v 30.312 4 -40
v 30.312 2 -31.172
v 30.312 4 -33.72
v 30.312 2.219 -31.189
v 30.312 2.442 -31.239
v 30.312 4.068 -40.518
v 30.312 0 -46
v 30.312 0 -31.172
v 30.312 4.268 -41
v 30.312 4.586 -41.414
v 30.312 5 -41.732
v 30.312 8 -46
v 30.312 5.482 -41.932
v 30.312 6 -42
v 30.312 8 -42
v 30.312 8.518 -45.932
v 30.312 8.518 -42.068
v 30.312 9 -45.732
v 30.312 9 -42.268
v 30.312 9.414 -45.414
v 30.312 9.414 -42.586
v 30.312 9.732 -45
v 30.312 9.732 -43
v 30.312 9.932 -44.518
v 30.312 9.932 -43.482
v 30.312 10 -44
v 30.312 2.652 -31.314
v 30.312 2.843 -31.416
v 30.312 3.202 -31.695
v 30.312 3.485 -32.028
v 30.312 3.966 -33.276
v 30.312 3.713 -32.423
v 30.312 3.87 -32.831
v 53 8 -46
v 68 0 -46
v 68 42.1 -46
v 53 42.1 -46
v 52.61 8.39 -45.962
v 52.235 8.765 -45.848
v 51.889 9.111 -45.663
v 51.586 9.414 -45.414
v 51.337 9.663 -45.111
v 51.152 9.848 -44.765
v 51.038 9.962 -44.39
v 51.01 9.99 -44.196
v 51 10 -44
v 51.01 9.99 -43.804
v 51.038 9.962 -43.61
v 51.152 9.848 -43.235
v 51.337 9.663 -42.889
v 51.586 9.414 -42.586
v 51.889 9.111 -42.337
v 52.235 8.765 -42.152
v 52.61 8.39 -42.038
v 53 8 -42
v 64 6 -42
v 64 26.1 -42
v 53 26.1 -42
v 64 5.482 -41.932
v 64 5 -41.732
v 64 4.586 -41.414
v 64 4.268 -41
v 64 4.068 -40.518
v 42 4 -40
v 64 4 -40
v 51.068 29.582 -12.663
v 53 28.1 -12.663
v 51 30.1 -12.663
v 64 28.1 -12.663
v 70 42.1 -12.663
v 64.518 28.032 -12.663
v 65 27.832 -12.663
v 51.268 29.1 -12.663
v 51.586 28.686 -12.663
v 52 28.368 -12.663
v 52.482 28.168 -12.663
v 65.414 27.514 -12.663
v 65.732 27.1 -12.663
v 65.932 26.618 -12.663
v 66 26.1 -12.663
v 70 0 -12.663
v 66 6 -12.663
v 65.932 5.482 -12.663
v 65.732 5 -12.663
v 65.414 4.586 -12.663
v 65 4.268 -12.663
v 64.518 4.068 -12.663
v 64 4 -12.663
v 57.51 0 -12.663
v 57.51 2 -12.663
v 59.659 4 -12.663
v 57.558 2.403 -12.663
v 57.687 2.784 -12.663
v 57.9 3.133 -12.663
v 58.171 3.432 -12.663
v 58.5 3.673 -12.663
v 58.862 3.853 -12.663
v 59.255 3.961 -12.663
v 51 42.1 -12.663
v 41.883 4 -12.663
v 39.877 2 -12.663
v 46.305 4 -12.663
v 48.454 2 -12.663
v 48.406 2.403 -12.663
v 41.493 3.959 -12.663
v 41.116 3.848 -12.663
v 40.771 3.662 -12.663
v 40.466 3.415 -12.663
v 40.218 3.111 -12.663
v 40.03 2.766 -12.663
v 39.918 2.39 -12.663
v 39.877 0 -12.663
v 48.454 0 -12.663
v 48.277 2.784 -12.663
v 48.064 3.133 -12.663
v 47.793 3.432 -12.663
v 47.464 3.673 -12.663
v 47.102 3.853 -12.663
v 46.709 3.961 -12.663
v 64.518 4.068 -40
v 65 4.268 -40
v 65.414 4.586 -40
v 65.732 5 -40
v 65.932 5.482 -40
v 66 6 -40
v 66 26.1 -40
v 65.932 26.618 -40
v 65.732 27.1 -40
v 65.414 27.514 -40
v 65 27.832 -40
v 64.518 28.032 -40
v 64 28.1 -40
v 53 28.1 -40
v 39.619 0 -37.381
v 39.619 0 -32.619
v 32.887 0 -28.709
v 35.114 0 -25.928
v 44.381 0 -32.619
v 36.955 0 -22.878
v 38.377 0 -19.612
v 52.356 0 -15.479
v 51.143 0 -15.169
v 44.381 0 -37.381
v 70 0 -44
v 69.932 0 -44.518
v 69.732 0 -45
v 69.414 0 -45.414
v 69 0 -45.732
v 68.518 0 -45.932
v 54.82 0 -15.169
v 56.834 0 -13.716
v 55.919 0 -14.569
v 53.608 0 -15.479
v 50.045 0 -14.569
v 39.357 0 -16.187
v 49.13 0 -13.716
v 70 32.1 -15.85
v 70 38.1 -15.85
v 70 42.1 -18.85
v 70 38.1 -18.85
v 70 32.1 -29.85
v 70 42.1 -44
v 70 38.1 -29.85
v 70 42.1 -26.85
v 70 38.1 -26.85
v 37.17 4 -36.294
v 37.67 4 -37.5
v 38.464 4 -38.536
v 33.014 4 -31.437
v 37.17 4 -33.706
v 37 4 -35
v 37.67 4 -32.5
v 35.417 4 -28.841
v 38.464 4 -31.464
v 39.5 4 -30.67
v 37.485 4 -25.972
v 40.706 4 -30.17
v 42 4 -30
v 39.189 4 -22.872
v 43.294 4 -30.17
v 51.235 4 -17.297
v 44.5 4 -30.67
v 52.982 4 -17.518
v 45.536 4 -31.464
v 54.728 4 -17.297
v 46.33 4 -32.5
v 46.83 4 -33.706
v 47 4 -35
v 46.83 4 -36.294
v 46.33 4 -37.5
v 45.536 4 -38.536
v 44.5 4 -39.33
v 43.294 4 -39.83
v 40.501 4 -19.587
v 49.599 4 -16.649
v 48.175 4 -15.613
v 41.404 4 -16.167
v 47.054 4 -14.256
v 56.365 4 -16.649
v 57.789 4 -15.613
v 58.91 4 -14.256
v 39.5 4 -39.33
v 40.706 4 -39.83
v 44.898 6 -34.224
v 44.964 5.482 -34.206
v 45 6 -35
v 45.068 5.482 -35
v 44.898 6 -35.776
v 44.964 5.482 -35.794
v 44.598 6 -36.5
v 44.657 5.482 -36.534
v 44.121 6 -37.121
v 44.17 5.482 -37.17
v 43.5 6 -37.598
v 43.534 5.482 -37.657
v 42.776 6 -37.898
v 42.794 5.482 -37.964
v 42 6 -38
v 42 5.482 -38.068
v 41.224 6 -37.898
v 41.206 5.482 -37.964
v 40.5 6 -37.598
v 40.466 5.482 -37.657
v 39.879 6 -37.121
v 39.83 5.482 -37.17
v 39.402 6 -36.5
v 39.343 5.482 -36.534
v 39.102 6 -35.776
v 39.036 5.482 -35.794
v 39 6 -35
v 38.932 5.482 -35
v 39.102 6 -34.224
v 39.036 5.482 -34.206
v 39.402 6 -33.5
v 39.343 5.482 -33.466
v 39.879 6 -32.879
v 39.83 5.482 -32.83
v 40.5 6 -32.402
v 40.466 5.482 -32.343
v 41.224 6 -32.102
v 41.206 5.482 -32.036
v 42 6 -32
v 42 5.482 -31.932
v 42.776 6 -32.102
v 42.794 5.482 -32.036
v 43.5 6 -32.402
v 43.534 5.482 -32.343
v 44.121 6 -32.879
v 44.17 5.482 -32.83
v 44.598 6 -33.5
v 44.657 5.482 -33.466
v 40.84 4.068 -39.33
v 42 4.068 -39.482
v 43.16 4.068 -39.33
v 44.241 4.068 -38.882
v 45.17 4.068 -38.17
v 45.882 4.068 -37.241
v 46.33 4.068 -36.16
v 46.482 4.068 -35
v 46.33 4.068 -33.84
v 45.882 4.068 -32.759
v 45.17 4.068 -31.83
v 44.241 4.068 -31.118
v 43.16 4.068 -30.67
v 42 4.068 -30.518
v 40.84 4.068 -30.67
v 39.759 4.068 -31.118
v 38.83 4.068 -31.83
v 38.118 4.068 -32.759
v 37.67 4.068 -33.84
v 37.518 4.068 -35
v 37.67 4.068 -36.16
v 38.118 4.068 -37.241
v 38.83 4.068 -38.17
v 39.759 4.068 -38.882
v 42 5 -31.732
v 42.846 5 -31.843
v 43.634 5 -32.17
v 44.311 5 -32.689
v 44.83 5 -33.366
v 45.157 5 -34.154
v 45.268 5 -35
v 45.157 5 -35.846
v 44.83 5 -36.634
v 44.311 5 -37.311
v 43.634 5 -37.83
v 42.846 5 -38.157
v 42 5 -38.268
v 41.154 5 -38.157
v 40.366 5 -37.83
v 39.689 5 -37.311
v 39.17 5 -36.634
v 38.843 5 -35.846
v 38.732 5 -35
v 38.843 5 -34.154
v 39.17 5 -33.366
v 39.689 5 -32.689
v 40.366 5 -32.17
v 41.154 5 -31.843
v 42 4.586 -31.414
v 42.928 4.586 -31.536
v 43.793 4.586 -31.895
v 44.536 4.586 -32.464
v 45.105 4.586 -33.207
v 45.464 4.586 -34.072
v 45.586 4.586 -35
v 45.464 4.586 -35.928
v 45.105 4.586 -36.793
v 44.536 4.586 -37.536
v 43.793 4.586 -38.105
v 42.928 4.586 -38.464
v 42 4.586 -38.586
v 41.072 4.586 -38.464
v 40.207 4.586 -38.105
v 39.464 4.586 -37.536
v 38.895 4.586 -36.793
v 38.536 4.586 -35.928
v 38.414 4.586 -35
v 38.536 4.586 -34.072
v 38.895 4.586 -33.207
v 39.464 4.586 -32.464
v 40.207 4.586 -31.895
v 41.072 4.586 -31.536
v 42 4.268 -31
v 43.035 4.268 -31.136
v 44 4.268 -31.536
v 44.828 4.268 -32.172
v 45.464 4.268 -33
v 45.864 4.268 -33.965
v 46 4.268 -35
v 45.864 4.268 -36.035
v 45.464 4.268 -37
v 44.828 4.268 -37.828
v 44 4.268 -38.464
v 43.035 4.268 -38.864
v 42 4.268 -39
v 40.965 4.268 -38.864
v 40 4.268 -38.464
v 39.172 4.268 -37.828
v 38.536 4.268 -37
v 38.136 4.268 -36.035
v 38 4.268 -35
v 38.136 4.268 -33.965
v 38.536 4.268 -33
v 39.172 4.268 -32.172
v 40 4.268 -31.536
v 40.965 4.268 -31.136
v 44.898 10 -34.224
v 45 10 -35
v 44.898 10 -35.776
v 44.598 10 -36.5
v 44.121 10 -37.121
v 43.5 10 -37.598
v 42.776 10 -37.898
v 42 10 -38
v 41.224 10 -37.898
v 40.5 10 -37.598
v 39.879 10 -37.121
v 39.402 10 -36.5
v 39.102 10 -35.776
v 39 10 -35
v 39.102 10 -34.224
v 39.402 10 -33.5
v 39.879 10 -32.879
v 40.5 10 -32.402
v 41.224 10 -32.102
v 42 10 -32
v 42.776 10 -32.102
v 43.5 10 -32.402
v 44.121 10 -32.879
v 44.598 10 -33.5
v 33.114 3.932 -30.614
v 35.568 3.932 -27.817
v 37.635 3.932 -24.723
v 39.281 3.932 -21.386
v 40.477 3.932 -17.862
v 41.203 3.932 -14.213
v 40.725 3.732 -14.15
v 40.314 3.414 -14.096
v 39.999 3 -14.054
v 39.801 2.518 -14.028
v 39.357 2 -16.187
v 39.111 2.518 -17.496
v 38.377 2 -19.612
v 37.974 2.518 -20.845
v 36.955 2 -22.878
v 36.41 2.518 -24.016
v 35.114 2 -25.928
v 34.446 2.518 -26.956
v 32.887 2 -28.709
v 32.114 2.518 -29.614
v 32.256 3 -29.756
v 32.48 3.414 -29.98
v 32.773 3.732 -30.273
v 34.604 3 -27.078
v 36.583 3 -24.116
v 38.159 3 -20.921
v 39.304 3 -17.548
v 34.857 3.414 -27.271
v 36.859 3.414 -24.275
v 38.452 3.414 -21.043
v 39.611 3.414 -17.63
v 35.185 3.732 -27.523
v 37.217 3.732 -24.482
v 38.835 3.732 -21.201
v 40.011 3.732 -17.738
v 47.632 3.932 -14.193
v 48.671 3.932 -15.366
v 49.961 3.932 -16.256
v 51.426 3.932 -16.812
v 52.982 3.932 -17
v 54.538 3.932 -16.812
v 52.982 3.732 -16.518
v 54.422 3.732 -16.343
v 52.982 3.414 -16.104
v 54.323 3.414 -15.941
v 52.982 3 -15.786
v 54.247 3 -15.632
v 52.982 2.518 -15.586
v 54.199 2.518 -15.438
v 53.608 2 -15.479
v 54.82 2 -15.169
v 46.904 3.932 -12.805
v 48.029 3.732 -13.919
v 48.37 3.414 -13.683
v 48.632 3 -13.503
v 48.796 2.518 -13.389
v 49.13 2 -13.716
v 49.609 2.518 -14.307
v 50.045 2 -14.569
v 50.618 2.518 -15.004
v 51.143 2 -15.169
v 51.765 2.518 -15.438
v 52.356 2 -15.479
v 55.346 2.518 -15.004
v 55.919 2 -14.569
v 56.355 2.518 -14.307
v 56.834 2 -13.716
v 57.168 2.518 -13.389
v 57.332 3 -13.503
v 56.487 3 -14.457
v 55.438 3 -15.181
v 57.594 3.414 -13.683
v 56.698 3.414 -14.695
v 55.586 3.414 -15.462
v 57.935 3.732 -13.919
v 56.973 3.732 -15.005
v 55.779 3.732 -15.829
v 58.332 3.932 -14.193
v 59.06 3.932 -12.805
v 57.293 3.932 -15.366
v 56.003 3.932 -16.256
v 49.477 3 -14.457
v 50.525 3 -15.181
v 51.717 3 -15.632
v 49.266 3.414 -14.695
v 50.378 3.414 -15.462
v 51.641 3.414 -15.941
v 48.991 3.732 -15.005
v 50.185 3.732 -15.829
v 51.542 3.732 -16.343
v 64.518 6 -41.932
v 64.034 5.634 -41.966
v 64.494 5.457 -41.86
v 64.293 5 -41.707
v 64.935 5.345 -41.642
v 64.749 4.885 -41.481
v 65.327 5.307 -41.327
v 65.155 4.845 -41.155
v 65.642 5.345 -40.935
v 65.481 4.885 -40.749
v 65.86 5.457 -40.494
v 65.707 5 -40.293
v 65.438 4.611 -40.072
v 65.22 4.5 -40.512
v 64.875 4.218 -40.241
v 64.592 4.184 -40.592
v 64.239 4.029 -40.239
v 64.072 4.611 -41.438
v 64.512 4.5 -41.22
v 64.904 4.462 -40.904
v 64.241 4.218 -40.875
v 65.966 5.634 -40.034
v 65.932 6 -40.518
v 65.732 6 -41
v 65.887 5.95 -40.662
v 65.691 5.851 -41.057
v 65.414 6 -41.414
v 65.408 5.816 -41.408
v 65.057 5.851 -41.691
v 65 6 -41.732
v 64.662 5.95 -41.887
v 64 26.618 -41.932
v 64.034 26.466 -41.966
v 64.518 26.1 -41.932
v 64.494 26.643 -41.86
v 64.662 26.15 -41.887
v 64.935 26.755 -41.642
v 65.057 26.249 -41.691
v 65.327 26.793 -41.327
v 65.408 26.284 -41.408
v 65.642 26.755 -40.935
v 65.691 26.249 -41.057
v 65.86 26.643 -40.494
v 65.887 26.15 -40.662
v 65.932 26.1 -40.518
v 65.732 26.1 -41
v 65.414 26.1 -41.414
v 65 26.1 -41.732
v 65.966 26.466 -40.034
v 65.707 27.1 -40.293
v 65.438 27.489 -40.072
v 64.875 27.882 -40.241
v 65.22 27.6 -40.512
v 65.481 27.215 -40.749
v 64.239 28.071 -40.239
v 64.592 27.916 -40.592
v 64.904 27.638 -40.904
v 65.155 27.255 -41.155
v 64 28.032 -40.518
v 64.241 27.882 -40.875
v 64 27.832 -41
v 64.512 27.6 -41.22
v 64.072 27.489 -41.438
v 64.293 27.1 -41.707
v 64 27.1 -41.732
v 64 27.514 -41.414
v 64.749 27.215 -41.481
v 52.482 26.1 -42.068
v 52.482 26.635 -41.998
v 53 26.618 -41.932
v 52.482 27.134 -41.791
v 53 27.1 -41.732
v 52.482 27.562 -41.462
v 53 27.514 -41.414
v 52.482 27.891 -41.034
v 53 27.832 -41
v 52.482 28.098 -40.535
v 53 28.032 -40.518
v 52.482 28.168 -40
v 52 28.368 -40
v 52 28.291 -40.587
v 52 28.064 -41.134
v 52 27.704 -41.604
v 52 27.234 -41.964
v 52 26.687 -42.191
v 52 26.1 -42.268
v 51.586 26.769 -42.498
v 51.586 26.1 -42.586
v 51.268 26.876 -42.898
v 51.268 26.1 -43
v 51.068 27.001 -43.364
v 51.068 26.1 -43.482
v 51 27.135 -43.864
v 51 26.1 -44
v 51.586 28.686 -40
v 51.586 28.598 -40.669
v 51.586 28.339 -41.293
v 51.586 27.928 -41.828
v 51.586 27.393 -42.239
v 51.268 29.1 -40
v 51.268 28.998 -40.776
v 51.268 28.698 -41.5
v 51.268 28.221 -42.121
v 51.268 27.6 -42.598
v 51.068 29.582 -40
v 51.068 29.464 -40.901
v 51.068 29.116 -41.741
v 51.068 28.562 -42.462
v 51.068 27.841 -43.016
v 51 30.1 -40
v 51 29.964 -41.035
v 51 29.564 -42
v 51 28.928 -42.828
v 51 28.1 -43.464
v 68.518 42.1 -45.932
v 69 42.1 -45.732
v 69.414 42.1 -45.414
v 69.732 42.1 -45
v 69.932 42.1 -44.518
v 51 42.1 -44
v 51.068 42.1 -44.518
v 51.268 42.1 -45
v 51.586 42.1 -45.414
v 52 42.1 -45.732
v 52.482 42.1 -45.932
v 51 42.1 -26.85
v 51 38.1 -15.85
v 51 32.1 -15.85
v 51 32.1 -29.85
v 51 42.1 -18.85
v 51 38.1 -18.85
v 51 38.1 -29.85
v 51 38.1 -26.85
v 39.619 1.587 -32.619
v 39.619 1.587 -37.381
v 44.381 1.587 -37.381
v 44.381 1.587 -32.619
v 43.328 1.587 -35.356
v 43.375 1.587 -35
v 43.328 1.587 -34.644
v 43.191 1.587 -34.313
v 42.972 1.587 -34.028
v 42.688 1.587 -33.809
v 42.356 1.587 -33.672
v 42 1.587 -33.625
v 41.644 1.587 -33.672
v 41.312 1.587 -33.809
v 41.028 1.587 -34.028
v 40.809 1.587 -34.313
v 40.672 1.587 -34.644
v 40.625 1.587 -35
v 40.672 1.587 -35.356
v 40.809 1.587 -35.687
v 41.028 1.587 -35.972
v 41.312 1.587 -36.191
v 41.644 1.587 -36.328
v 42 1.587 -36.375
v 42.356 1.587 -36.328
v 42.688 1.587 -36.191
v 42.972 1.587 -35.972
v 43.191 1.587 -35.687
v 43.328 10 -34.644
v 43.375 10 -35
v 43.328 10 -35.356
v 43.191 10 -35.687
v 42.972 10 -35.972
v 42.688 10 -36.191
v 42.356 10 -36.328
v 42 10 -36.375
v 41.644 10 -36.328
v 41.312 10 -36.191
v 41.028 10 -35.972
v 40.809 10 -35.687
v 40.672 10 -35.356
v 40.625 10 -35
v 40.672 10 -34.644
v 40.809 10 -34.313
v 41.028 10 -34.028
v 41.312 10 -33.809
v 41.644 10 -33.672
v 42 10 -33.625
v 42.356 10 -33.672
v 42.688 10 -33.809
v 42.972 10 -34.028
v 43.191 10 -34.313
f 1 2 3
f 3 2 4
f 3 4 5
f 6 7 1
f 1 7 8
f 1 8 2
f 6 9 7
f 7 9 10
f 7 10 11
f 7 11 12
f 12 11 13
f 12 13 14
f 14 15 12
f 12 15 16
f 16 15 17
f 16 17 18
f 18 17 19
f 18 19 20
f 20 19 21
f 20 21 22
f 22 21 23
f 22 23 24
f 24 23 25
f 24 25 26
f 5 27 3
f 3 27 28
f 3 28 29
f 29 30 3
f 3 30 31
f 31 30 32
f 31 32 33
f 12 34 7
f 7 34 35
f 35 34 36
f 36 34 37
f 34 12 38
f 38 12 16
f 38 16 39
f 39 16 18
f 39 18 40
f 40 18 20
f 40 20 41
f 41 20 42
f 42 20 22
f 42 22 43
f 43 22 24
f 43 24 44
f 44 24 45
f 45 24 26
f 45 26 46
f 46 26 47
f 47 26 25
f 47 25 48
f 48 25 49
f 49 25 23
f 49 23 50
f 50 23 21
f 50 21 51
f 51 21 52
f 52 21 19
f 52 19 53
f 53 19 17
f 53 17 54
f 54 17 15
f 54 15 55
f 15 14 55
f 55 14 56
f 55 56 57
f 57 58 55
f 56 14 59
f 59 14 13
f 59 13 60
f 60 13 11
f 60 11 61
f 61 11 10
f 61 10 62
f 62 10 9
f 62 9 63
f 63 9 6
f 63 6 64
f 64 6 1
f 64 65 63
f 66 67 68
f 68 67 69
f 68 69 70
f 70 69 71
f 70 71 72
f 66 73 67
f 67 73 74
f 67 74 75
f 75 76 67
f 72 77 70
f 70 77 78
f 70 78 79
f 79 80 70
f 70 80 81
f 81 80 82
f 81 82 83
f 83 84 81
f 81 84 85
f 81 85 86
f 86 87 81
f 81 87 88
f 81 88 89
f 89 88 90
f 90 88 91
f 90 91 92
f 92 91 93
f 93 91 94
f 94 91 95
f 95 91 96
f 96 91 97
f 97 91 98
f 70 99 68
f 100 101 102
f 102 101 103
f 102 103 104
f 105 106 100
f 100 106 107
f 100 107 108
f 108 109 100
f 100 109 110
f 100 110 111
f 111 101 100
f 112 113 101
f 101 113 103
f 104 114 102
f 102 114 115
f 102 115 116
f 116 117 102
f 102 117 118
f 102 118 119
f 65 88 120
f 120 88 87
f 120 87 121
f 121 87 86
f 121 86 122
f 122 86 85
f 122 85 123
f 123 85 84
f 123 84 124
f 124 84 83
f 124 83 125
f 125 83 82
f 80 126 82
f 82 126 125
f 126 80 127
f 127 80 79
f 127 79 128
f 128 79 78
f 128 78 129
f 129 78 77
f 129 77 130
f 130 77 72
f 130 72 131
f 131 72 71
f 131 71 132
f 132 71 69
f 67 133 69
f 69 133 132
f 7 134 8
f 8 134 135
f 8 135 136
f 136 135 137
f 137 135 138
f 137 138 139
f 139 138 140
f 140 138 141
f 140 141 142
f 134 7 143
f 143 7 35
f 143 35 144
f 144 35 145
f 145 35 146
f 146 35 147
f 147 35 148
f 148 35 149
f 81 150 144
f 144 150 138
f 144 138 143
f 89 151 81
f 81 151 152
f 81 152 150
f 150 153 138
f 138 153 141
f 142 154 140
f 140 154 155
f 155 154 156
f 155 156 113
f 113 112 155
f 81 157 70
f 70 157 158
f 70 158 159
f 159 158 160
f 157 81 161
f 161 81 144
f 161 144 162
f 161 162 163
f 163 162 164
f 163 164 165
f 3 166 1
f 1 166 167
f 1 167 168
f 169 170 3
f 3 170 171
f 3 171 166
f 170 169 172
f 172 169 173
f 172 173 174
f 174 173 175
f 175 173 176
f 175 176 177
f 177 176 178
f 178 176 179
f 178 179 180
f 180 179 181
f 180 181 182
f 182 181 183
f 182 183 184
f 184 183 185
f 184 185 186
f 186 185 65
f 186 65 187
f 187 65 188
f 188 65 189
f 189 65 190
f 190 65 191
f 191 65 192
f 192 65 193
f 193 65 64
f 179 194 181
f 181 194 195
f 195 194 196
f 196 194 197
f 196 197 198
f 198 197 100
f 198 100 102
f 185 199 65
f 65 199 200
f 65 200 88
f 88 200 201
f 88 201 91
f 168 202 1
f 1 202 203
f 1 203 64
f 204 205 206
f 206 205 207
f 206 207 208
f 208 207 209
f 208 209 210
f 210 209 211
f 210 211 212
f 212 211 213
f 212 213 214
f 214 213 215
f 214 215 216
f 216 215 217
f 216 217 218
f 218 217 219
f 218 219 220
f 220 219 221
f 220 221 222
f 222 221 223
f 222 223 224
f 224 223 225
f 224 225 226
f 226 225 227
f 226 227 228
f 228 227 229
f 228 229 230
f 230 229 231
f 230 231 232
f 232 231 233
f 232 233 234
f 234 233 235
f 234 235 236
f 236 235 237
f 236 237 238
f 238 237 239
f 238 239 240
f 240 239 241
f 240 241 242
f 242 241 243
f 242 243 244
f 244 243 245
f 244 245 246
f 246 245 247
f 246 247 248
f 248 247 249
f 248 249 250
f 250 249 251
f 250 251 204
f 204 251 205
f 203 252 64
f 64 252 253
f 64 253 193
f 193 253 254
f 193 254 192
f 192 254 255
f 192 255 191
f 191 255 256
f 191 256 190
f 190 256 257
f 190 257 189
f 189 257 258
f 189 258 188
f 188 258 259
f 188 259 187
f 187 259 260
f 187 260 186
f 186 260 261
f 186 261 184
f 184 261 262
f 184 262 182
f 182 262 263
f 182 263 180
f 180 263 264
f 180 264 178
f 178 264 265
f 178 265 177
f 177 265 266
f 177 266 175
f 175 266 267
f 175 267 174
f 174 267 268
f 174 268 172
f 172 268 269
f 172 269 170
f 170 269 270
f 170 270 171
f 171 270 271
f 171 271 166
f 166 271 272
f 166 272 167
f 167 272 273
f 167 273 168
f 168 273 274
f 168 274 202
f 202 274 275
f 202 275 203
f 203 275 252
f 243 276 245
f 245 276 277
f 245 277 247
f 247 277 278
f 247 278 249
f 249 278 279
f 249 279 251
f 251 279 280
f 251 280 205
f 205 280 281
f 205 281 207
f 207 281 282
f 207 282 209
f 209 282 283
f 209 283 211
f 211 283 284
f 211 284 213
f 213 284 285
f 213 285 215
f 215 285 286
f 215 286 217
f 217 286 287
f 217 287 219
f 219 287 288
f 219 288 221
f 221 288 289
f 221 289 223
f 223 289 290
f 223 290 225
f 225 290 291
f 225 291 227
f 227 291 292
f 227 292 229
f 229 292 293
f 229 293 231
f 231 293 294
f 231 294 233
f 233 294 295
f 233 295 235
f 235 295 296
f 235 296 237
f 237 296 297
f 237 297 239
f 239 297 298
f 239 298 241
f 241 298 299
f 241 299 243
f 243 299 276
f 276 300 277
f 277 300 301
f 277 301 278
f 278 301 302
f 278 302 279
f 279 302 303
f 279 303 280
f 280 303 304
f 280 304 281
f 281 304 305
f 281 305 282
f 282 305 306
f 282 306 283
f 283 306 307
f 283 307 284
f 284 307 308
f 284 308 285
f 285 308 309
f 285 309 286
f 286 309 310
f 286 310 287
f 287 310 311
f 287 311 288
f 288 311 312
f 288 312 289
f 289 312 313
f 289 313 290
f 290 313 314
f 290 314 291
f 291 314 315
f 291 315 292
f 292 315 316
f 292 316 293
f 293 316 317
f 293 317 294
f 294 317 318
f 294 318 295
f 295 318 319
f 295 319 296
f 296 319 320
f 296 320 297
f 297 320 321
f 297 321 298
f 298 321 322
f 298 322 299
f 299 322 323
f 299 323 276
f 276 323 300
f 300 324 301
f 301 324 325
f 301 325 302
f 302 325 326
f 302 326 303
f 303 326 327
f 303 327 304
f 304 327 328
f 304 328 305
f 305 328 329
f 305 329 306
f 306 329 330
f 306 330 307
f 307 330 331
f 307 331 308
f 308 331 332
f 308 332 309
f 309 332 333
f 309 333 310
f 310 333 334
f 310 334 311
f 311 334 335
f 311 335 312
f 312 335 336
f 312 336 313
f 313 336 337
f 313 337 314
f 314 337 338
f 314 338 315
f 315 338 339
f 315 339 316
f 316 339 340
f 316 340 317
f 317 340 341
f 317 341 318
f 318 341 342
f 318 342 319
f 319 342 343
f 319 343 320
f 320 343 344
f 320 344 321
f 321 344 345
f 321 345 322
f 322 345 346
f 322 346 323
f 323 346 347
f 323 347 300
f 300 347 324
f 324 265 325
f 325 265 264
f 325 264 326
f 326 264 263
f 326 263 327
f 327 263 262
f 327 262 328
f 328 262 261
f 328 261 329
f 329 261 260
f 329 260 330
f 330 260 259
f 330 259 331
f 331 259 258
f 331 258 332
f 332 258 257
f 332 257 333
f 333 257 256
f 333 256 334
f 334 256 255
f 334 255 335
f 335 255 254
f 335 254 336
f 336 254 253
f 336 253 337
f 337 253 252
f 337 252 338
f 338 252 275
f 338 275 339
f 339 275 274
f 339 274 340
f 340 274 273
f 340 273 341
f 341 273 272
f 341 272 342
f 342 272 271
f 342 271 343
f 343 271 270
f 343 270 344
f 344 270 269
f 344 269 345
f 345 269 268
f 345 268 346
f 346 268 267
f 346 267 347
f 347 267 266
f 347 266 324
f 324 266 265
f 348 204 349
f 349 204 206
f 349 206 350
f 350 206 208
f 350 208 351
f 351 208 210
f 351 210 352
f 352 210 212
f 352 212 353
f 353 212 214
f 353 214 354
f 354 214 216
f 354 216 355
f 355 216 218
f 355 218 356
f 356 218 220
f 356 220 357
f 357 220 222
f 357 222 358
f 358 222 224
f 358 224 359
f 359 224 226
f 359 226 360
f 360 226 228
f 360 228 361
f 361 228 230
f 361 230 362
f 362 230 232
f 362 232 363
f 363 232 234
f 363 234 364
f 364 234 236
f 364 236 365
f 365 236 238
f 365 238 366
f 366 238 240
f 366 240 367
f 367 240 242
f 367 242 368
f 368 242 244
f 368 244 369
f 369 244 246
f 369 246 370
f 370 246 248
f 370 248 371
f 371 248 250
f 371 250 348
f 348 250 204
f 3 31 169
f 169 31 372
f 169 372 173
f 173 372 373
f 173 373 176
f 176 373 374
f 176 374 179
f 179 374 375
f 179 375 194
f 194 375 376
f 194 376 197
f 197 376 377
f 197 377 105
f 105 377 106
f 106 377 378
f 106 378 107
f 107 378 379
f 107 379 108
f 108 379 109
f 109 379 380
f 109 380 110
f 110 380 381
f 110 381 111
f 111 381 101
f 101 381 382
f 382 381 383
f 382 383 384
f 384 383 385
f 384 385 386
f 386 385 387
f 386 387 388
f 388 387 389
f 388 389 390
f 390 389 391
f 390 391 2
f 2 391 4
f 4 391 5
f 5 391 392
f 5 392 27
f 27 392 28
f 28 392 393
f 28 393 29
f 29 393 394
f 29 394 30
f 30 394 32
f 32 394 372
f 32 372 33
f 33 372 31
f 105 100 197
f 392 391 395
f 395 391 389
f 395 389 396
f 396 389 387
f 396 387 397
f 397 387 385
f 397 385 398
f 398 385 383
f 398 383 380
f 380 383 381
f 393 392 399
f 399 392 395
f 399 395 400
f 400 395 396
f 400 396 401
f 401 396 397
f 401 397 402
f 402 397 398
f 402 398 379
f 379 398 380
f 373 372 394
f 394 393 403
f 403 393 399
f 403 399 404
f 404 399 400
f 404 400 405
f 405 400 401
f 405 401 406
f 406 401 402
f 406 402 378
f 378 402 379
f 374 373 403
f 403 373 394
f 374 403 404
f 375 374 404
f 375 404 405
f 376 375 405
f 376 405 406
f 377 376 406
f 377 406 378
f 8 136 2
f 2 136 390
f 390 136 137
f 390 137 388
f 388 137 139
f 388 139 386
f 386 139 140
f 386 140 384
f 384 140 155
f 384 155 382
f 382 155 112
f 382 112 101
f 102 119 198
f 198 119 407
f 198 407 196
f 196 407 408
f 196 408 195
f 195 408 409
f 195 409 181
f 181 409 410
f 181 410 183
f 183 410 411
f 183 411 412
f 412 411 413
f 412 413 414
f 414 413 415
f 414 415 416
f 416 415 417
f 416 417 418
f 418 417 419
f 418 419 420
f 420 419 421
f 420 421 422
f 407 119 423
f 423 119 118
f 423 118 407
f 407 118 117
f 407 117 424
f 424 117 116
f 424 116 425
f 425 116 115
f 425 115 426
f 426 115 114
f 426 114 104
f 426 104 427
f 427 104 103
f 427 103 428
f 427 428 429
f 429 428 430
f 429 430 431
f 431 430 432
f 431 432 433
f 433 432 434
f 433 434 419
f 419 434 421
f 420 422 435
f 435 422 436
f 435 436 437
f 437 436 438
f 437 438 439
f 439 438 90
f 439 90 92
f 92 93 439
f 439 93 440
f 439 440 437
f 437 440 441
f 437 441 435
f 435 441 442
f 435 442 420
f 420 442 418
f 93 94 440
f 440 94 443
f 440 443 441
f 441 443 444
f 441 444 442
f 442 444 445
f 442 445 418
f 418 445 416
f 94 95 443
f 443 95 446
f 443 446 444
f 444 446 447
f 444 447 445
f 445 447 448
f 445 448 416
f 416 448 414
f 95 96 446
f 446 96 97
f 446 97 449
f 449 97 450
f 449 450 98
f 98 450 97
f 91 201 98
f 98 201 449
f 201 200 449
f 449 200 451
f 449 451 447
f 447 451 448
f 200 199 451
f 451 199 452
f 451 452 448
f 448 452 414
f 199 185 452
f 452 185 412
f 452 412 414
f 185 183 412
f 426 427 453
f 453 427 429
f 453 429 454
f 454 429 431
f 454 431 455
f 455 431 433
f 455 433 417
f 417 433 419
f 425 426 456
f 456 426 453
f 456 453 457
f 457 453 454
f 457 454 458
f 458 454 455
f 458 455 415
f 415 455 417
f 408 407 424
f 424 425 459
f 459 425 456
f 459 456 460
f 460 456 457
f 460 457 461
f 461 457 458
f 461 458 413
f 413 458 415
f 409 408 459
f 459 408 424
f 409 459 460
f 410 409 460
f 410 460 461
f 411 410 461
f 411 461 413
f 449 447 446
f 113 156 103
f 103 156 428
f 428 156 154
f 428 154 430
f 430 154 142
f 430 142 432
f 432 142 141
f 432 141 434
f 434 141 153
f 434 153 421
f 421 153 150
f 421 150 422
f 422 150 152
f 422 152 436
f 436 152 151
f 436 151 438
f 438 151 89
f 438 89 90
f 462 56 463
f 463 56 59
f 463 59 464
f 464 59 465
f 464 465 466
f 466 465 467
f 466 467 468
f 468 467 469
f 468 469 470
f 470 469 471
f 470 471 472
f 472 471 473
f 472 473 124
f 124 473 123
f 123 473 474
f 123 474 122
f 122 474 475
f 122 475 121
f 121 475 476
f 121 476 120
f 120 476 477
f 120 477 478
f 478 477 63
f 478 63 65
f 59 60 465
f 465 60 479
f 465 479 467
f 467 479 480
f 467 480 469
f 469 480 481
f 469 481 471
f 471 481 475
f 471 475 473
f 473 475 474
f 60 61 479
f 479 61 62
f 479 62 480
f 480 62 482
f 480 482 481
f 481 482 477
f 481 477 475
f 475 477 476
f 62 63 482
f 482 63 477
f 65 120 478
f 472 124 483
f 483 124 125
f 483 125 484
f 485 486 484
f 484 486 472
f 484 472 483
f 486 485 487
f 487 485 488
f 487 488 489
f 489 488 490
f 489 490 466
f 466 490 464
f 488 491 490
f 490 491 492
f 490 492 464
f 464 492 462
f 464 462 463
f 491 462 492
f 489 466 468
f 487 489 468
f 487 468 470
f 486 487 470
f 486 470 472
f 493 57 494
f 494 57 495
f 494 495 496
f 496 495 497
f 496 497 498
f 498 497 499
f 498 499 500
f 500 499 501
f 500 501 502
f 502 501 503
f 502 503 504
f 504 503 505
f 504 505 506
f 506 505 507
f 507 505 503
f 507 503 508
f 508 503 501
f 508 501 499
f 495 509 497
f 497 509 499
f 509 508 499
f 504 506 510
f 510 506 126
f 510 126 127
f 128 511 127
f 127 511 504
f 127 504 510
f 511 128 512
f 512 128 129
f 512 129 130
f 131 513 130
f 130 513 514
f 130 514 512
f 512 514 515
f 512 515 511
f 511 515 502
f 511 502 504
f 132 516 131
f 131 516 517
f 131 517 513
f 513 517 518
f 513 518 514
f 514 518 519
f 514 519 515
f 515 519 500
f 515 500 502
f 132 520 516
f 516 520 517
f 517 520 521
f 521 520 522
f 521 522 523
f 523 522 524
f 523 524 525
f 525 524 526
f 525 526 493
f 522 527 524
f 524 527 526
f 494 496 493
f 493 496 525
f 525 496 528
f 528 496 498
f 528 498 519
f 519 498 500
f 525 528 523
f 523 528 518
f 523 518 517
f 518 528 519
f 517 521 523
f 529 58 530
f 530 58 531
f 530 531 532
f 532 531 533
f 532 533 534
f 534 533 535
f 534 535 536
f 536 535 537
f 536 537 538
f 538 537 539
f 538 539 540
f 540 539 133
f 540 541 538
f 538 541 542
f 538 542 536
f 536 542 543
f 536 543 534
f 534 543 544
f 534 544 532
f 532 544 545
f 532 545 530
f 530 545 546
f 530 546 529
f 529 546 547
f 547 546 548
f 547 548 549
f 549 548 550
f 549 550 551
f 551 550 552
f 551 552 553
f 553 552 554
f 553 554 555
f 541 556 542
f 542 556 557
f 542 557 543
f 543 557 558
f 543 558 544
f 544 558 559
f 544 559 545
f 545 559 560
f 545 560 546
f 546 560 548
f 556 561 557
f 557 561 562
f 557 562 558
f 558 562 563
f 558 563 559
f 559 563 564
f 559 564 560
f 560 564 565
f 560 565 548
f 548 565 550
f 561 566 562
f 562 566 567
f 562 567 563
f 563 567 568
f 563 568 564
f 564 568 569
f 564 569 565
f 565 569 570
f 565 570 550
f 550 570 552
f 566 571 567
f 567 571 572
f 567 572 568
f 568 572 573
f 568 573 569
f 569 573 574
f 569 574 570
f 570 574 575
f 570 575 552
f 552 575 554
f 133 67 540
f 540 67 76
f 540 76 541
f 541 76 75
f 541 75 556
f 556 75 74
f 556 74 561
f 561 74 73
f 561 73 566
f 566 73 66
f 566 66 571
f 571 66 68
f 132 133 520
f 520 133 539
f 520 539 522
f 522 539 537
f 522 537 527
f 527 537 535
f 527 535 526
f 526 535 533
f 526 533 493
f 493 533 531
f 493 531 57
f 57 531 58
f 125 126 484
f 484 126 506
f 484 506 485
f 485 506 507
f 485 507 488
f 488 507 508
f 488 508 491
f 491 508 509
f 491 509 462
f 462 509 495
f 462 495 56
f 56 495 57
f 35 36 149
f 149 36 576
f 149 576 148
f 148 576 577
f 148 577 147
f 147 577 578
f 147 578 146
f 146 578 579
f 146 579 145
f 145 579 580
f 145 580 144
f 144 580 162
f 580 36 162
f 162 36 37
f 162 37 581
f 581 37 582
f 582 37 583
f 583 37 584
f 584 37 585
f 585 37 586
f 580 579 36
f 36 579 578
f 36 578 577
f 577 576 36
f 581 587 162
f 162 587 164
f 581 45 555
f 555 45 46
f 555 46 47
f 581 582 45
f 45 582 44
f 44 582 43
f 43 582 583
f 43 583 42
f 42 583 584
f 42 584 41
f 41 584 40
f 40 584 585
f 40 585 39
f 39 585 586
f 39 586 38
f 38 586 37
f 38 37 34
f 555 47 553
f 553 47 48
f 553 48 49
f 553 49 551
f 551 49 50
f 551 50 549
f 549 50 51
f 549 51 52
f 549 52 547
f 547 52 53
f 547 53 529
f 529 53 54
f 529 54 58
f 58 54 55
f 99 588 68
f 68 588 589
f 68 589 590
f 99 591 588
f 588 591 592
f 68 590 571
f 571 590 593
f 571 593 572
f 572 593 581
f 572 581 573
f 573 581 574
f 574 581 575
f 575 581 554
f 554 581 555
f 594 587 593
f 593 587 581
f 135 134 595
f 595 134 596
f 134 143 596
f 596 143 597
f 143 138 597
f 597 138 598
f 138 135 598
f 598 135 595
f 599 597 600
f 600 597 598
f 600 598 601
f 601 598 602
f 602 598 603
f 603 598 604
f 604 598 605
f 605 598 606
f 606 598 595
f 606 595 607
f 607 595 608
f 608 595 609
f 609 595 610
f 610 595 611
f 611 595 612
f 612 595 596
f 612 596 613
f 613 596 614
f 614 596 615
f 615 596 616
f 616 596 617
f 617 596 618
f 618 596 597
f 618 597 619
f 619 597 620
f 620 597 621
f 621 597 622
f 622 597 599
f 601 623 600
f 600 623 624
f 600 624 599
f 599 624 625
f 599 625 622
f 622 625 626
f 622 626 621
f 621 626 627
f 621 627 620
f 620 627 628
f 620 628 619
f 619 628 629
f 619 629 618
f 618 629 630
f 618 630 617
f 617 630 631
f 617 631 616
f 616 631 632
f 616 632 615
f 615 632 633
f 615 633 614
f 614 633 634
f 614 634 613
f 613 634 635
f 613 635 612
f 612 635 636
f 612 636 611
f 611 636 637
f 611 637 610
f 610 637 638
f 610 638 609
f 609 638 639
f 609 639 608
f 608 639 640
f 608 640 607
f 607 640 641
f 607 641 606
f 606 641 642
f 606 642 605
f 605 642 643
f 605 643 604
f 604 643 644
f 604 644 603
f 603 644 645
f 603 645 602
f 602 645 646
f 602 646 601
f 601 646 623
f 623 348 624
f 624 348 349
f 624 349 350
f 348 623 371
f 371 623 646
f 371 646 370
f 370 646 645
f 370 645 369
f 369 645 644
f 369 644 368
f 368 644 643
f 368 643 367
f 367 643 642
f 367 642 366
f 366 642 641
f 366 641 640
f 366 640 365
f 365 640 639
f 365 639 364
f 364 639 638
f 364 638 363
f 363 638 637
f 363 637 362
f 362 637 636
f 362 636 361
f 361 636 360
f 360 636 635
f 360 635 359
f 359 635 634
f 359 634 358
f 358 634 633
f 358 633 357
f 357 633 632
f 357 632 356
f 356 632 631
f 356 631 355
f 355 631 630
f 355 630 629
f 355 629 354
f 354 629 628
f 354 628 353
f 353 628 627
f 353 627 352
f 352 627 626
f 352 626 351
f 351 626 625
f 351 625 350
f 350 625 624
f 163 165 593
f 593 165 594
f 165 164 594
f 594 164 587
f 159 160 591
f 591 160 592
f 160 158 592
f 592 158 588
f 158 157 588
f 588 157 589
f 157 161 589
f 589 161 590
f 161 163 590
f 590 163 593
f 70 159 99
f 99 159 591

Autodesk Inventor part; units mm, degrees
ref_plane "YZ Plane" through (0, 0, 0) normal (1, 0, 0) x (0, 1, 0)
ref_plane "XZ Plane" through (0, 0, 0) normal (0, 1, 0) x (-1, 0, 0)
ref_plane "XY Plane" through (0, 0, 0) normal (0, 0, 1) x (1, 0, 0)
sketch "Sketch1" plane through (0, 0, 0) normal (0, 1, 0) x (-1, 0, 0)
  line L0 (70, -46) -> (-70, -46)
  line L1 (-70, -46) -> (-70, 46)
  line L2 (-70, 46) -> (70, 46)
  line L3 (70, 46) -> (70, -46)
  point P0 (0, 0)
  point P1 (0, -46)
  point P2 (-70, 0)
  dimension "d0" = 140
  dimension "d1" = 92
extrude "Extrusion1" add sketch "Sketch1" along normal blind 4
sketch "Sketch2" plane through (0, 4, 0) normal (0, 1, 0) x (1, 0, 0)
  line L0 (70, 46) -> (-70, 46) projected
  line L1 (-70, 46) -> (-70, -46) projected
  line L2 (-70, -46) -> (70, -46) projected
  line L3 (70, -46) -> (70, 46) projected
  line L4 (-70, 46) -> (70, 46)
  line L5 (70, 46) -> (70, -46)
  line L6 (70, -46) -> (-70, -46)
  line L7 (-70, -46) -> (-70, 46)
  line L8 (-66, 42) -> (66, 42)
  line L9 (66, 42) -> (66, -42)
  line L10 (66, -42) -> (-66, -42)
  line L11 (-66, -42) -> (-66, 42)
  point P0 (0, 0)
  point P1 (0, -42)
  dimension "d4" = 4
  dimension "d5" = 4
  dimension "d6" = 4
  dimension "d7" = 4
extrude "Extrusion3" add sketch "Sketch2" along normal blind 38.1
sketch "Sketch3" plane through (0, 42.1, 0) normal (0, 1, 0) x (1, 0, 0)
  line L0 (66, 42) -> (66, -42) projected
  line L1 (66, -42) -> (-66, -42) projected
  line L2 (-66, -42) -> (-66, 42) projected
  line L3 (-66, 42) -> (66, 42) projected
  line L4 (70, 46) -> (-70, 46) projected
  line L5 (-70, 46) -> (-70, -46) projected
  line L6 (-70, -46) -> (70, -46) projected
  line L7 (70, -46) -> (70, 46) projected
  line L8 (-66, 42) -> (-66, -42) projected
  line L9 (-66, -42) -> (66, -42) projected
  line L10 (-66, 42) -> (-51, 42)
  line L11 (-51, 42) -> (-51, -42)
  line L12 (-51, -42) -> (-66, -42)
  line L13 (-66, -42) -> (-66, 42)
  line L14 (66, 42) -> (51, 42)
  line L15 (51, 42) -> (51, -42)
  line L16 (51, -42) -> (66, -42)
  line L17 (66, -42) -> (66, 42)
  point P0 (0, 0)
  dimension "d17" = 19
  dimension "d60" = 19
extrude "Extrusion4" add sketch "Sketch3" against normal blind 14 contours L0 L1 L15 L3 | L11 L1 L2 L3
sketch "Sketch5" plane through (70, 0, 46) normal (1, 0, 0) x (0, 0, -1)
  line L0 (92, 0) -> (0, 0) projected
  line L1 (92, 0) -> (92, 42.1) projected
  line L2 (0, 42.1) -> (92, 42.1) projected
  line L3 (0, 0) -> (0, 42.1) projected
  line L4 (92, 42.1) -> (0, 42.1) projected
  line L5 (19.15, 42.1) -> (27.15, 42.1)
  line L6 (27.15, 38.1) -> (30.15, 38.1)
  line L7 (30.15, 38.1) -> (30.15, 32.1)
  line L8 (30.15, 32.1) -> (16.15, 32.1)
  line L9 (16.15, 32.1) -> (16.15, 38.1)
  line L10 (16.15, 38.1) -> (19.15, 38.1)
  line L11 (19.15, 38.1) -> (19.15, 42.1)
  line L12 (27.15, 42.1) -> (27.15, 38.1)
  line L13 (64.85, 42.1) -> (72.85, 42.1)
  line L14 (72.85, 38.1) -> (75.85, 38.1)
  line L15 (75.85, 38.1) -> (75.85, 32.1)
  line L16 (75.85, 32.1) -> (61.85, 32.1)
  line L17 (61.85, 32.1) -> (61.85, 38.1)
  line L18 (61.85, 38.1) -> (64.85, 38.1)
  line L19 (64.85, 38.1) -> (64.85, 42.1)
  line L20 (72.85, 42.1) -> (72.85, 38.1)
  line L21 (0, 42.1) -> (92, 42.1) projected
  point P0 (46, 0)
  point P1 (23.15, 42.1)
  point P2 (23.15, 32.1)
  point P3 (68.85, 42.1)
  point P4 (68.85, 32.1)
  dimension "d47" = 14
  dimension "d48" = 6
  dimension "d49" = 8
  dimension "d50" = 10
  dimension "d51" = 23.15
  dimension "d52" = 14
  dimension "d53" = 6
  dimension "d54" = 8
  dimension "d56" = 10
  dimension "d57" = 23.15
extrude "Extrusion7" cut sketch "Sketch5" against normal blind 19 contours L20 L14 L15 L16 L17 L18 L19 L2 | L2 L12 L6 L7 L8 L9 L10 L11
sketch "Sketch6" plane through (-70, 0, -46) normal (-1, 0, 0) x (0, 0, 1)
  line L0 (92, 0) -> (0, 0) projected
  line L1 (92, 0) -> (92, 42.1) projected
  line L2 (0, 42.1) -> (92, 42.1) projected
  line L3 (0, 0) -> (0, 42.1) projected
  line L4 (64.85, 42.1) -> (72.85, 42.1)
  line L5 (72.85, 38.1) -> (75.85, 38.1)
  line L6 (75.85, 38.1) -> (75.85, 32.1)
  line L7 (75.85, 32.1) -> (61.85, 32.1)
  line L8 (61.85, 32.1) -> (61.85, 38.1)
  line L9 (61.85, 38.1) -> (64.85, 38.1)
  line L10 (64.85, 38.1) -> (64.85, 42.1)
  line L11 (72.85, 42.1) -> (72.85, 38.1)
  line L12 (19.15, 42.1) -> (27.15, 42.1)
  line L13 (27.15, 38.1) -> (30.15, 38.1)
  line L14 (30.15, 38.1) -> (30.15, 32.1)
  line L15 (30.15, 32.1) -> (16.15, 32.1)
  line L16 (16.15, 32.1) -> (16.15, 38.1)
  line L17 (16.15, 38.1) -> (19.15, 38.1)
  line L18 (19.15, 38.1) -> (19.15, 42.1)
  line L19 (27.15, 42.1) -> (27.15, 38.1)
  line L20 (0, 42.1) -> (92, 42.1) projected
  point P0 (46, 0)
  point P1 (68.85, 42.1)
  point P2 (68.85, 32.1)
  point P3 (23.15, 42.1)
  point P4 (23.15, 32.1)
  dimension "d61" = 14
  dimension "d62" = 6
  dimension "d63" = 8
  dimension "d65" = 14
  dimension "d66" = 6
  dimension "d67" = 8
  dimension "d69" = 10
  dimension "d70" = 23.15
  dimension "d71" = 23.15
  dimension "d72" = 10
extrude "Extrusion8" cut sketch "Sketch6" against normal blind 19 contours L11 L5 L6 L7 L8 L9 L10 L2 | L2 L19 L13 L14 L15 L16 L17 L18
sketch "Sketch7" plane through (0, 4, 0) normal (0, 1, 0) x (1, 0, 0)
  line L0 (66, -42) -> (66, 42) projected
  line L1 (66, 42) -> (-66, 42) projected
  line L2 (-66, 42) -> (-66, -42) projected
  line L3 (-66, -42) -> (66, -42) projected
  circle A0 centre (-16, 35) radius 3
  circle A1 centre (-16, -14) radius 3
  circle A2 centre (42, 35) radius 3
  circle A3 centre (42, -14) radius 3
  line L4 (-70, 26.85) -> (-51, 26.85) projected
  line L5 (-51, 26.85) -> (-51, 42) projected
  line L6 (-51, 42) -> (51, 42) projected
  line L7 (51, 42) -> (51, 26.85) projected
  line L8 (51, 26.85) -> (70, 26.85) projected
  line L9 (70, 26.85) -> (70, 46) projected
  line L10 (70, 46) -> (-70, 46) projected
  line L11 (-70, 46) -> (-70, 26.85) projected
  point P0 (0, 0)
  dimension "d75" = 6
  dimension "d76" = 6
  dimension "d77" = 49
  dimension "d78" = 58
  dimension "d79" = 6
  dimension "d80" = 6
  dimension "d82" = 7
  dimension "d92" = 35
extrude "Extrusion9" add sketch "Sketch7" along normal blind 6 contours A0 | A1 | A2 | A3
sketch "Sketch8" plane through (-16, 10, -35) normal (0, 1, 0) x (1, 0, 0)
  circle A0 centre (0, 0) radius 3 projected
  circle A1 centre (0, -49) radius 3 projected
  circle A2 centre (58, 0) radius 3 projected
  circle A3 centre (58, -49) radius 3 projected
  circle A4 centre (58, -49) radius 3 projected
  circle A5 centre (0, 0) radius 3 projected
  point P0 (16, -35)
hole "Hole1" at (-16, 10, -35) at (-16, 10, 14) at (42, 10, -35) at (42, 10, 14) direction (0, -1, 0) diameter 2.75 end through all
sketch "Sketch9" plane through (70, 0, -46) normal (0, 0, -1) x (-1, 0, 0)
  line L0 (19, 38.1) -> (19, 42.1) projected
  line L1 (19, 42.1) -> (19, 38.1) projected
  line L2 (19, 38.1) -> (19, 32.1) projected
  line L3 (19, 32.1) -> (19, 38.1) projected
  line L4 (19, 38.1) -> (19, 42.1) projected
  line L5 (19, 28.1) -> (19, 42.1) projected
  line L6 (19, 42.1) -> (19, 28.1) projected
  line L7 (19, 42.1) -> (19, 38.1) projected
  line L8 (19, 38.1) -> (19, 32.1) projected
  line L9 (19, 32.1) -> (19, 38.1) projected
  line L10 (121, 42.1) -> (121, 38.1) projected
  line L11 (121, 38.1) -> (121, 32.1) projected
  line L12 (121, 32.1) -> (121, 38.1) projected
  line L13 (121, 38.1) -> (121, 42.1) projected
  line L14 (121, 28.1) -> (121, 42.1) projected
  line L15 (121, 42.1) -> (121, 28.1) projected
  line L16 (121, 42.1) -> (121, 38.1) projected
  line L17 (121, 38.1) -> (121, 32.1) projected
  line L18 (121, 32.1) -> (121, 38.1) projected
  line L19 (121, 38.1) -> (121, 42.1) projected
  line L20 (19, 42.1) -> (121, 42.1)
  line L21 (121, 42.1) -> (121, 10)
  line L22 (121, 10) -> (19, 10)
  line L23 (19, 10) -> (19, 42.1)
  line L24 (89, 10) -> (83, 10) projected
  point P0 (70, 0)
extrude "Extrusion10" cut sketch "Sketch9" against normal up to surface (4 mm away)
sketch "Sketch10" plane through (0, 0, 0) normal (0, -1, 0) x (1, 0, 0)
  line L0 (44.3813, -32.6187) -> (39.6188, -32.6188)
  line L1 (39.6188, -32.6188) -> (39.6188, -37.3813)
  line L2 (39.6188, -37.3813) -> (44.3813, -37.3813)
  line L3 (44.3813, -37.3813) -> (44.3813, -32.6187)
  circle A0 centre (42, -35) radius 1.375 projected
  circle A1 centre (42, -35) radius 1.375 projected
  circle A2 centre (-16, -35) radius 1.375 projected
  circle A3 centre (-16, 14) radius 1.375 projected
  circle A4 centre (42, 14) radius 1.375 projected
  line L4 (-70, -46) -> (70, -46) projected
  line L5 (70, -46) -> (70, 46) projected
  line L6 (70, 46) -> (-70, 46) projected
  line L7 (-70, 46) -> (-70, -46) projected
  line L8 (-13.6187, -37.3812) -> (-18.3812, -37.3812)
  line L9 (-18.3812, -37.3812) -> (-18.3812, -32.6187)
  line L10 (-18.3812, -32.6187) -> (-13.6187, -32.6188)
  line L11 (-13.6187, -32.6188) -> (-13.6187, -37.3812)
  line L12 (44.3813, 11.6188) -> (39.6188, 11.6188)
  line L13 (39.6188, 11.6188) -> (39.6188, 16.3813)
  line L14 (39.6188, 16.3813) -> (44.3813, 16.3813)
  line L15 (44.3813, 16.3813) -> (44.3813, 11.6188)
  line L16 (-13.6187, 11.6188) -> (-18.3812, 11.6188)
  line L17 (-18.3812, 11.6188) -> (-18.3812, 16.3813)
  line L18 (-18.3812, 16.3813) -> (-13.6187, 16.3813)
  line L19 (-13.6187, 16.3813) -> (-13.6187, 11.6188)
  point P0 (0, 0)
  point P1 (42, -32.6187)
  point P2 (39.6188, -35)
  point P3 (-18.3812, -35)
  point P4 (-18.3812, 14)
  point P5 (39.6188, 14)
  point P6 (-16, -37.3813)
  point P7 (-16, 11.6188)
  point P8 (42, 11.6188)
  dimension "d95" = 4.7625
  dimension "d96" = 4.7625
  dimension "d97" = 4.7625
  dimension "d98" = 4.7625
  dimension "d99" = 4.7625
  dimension "d100" = 4.7625
  dimension "d101" = 4.7625
  dimension "d102" = 4.7625
extrude "Extrusion11" cut sketch "Sketch10" against normal blind 1.5875 contours L3 L2 L1 L0 | L8 L9 L10 L11 | L12 L13 L14 L15 | L16 L17 L18 L19
sketch "Sketch11" plane through (0, 4, 0) normal (0, 1, 0) x (1, 0, 0)
  circle A0 centre (42, 35) radius 3 projected
  circle A1 centre (-16, 35) radius 3 projected
  circle A2 centre (-16, -14) radius 3 projected
  circle A3 centre (42, -14) radius 3 projected
  line L0 (66, -42) -> (66, 42) projected
  line L1 (66, 42) -> (-66, 42) projected
  line L2 (-66, 42) -> (-66, -42) projected
  line L3 (-66, -42) -> (66, -42) projected
  circle A4 centre (30.3953, -27.3279) radius 6.6721
  circle A5 centre (13, 10.5) radius 26.9638
  circle A6 centre (-27.6047, -27.3279) radius 6.6721
  circle A7 centre (-36.1, 10.5) radius 14.1362
  circle A8 centre (-51.3279, -27.3279) radius 6.6721
  circle A9 centre (52.9819, 10.5) radius 5.0181
  circle A10 centre (42, -14) radius 1.375 construction
  circle A11 centre (13, 10.5) radius 37.9638 construction
  circle A12 centre (-36.1, 10.5) radius 31.6901 construction
  point P0 (0, 0)
  point P1 (-66, 0)
  dimension "d105" = 8
  dimension "d106" = 8
  dimension "d107" = 8
  dimension "d108" = 8
  dimension "d109" = 8
  dimension "d110" = 8
  dimension "d112" = 8
  dimension "d113" = 8
  dimension "d114" = 8
  dimension "d115" = 8
  dimension "d116" = 8
extrude "Extrusion12" cut sketch "Sketch11" against normal through all contours A4 | A5 | A6 | A7 | A8 | A9
fillet "Fillet1" radius 2 38 edges at (51, 26.05, -46) (70, 21.05, -46) (0, 10, -46) (0, 10, -42) (-51, 26.05, -46) (-70, 21.05, -46) (-70, 21.05, 46) (66, 16.05, 42) (0, 4, 42) (66, 4, 0) (51, 19.05, -42) (51, 35.1, 42) (47.9638, 4, -10.5) (-13.9638, 4, -10.5) (23.7232, 4, 27.3279) (-51, 35.1, 42) (-51, 19.05, -42) (-66, 4, 0) (-66, 16.05, 42) (-66, 16.05, -42) (0, 4, -42) (-50.2362, 4, -10.5) (-58, 4, 27.3279) (-34.2768, 4, 27.3279) (66, 16.05, -42) (39, 4, 14) (-19, 4, 14) (39, 4, -35) (-19, 4, -35) (70, 21.05, 46) (-51, 28.1, 0) (51, 28.1, 0) (66, 28.1, 0) (-66, 28.1, 0) (-58.5, 28.1, 42) (58.5, 28.1, 42) (58.5, 28.1, -42) (-58.5, 28.1, -42)
ref_plane "Work Plane1" through (70, 0, -12.6625) normal (0, 0, -1) x (-1, 0, 0)
ref_plane "Work Plane2" through (30.3125, 0, 46) normal (1, 0, 0) x (0, 0, -1)
sketch "Sketch12" plane through (70, 0, -12.6625) normal (0, 0, -1) x (-1, 0, 0)
  line L0 (-7.5665, 44.2151) -> (155.3884, 44.2151)
  line L1 (155.3884, 44.2151) -> (155.3884, -4.8886)
  line L2 (155.3884, -4.8886) -> (-7.5665, -4.8886)
  line L3 (-7.5665, -4.8886) -> (-7.5665, 44.2151)
  point P0 (70, 0)
extrude "Extrusion13" cut sketch "Sketch12" against normal through all
sketch "Sketch13" plane through (30.3125, 0, 46) normal (1, 0, 0) x (0, 0, -1)
  line L0 (110.5301, 56.5997) -> (-15.9229, 56.5997)
  line L1 (-15.9229, 56.5997) -> (-15.9229, -18.7941)
  line L2 (-15.9229, -18.7941) -> (110.5301, -18.7941)
  line L3 (110.5301, -18.7941) -> (110.5301, 56.5997)
  point P0 (46, 0)
extrude "Extrusion14" cut sketch "Sketch13" against normal through all
equation "\"d5\" = d4"
equation "\"d6\" = d4"
equation "\"d7\" = d4"
equation "\"d60\" = d17"
equation "\"d56\" = d50"
equation "\"d57\" = d51"
equation "\"d69\" = d72"
equation "\"d71\" = d70"
equation "\"d76\" = d75"
equation "\"d79\" = d75"
equation "\"d80\" = d75"
equation "\"d96\" = d95"
equation "\"d97\" = d95"
equation "\"d98\" = d96"
equation "\"d99\" = d96"
equation "\"d100\" = d96"
equation "\"d101\" = d96"
equation "\"d102\" = d96"
equation "\"d106\" = d105"
equation "\"d107\" = d106"
equation "\"d108\" = d105"
equation "\"d110\" = d108"
equation "\"d112\" = d105"
equation "\"d113\" = d110"
equation "\"d114\" = d112"
equation "\"d115\" = d112"
equation "\"d116\" = d112"
properties part number "controlBox" material "ABS Plastic"
